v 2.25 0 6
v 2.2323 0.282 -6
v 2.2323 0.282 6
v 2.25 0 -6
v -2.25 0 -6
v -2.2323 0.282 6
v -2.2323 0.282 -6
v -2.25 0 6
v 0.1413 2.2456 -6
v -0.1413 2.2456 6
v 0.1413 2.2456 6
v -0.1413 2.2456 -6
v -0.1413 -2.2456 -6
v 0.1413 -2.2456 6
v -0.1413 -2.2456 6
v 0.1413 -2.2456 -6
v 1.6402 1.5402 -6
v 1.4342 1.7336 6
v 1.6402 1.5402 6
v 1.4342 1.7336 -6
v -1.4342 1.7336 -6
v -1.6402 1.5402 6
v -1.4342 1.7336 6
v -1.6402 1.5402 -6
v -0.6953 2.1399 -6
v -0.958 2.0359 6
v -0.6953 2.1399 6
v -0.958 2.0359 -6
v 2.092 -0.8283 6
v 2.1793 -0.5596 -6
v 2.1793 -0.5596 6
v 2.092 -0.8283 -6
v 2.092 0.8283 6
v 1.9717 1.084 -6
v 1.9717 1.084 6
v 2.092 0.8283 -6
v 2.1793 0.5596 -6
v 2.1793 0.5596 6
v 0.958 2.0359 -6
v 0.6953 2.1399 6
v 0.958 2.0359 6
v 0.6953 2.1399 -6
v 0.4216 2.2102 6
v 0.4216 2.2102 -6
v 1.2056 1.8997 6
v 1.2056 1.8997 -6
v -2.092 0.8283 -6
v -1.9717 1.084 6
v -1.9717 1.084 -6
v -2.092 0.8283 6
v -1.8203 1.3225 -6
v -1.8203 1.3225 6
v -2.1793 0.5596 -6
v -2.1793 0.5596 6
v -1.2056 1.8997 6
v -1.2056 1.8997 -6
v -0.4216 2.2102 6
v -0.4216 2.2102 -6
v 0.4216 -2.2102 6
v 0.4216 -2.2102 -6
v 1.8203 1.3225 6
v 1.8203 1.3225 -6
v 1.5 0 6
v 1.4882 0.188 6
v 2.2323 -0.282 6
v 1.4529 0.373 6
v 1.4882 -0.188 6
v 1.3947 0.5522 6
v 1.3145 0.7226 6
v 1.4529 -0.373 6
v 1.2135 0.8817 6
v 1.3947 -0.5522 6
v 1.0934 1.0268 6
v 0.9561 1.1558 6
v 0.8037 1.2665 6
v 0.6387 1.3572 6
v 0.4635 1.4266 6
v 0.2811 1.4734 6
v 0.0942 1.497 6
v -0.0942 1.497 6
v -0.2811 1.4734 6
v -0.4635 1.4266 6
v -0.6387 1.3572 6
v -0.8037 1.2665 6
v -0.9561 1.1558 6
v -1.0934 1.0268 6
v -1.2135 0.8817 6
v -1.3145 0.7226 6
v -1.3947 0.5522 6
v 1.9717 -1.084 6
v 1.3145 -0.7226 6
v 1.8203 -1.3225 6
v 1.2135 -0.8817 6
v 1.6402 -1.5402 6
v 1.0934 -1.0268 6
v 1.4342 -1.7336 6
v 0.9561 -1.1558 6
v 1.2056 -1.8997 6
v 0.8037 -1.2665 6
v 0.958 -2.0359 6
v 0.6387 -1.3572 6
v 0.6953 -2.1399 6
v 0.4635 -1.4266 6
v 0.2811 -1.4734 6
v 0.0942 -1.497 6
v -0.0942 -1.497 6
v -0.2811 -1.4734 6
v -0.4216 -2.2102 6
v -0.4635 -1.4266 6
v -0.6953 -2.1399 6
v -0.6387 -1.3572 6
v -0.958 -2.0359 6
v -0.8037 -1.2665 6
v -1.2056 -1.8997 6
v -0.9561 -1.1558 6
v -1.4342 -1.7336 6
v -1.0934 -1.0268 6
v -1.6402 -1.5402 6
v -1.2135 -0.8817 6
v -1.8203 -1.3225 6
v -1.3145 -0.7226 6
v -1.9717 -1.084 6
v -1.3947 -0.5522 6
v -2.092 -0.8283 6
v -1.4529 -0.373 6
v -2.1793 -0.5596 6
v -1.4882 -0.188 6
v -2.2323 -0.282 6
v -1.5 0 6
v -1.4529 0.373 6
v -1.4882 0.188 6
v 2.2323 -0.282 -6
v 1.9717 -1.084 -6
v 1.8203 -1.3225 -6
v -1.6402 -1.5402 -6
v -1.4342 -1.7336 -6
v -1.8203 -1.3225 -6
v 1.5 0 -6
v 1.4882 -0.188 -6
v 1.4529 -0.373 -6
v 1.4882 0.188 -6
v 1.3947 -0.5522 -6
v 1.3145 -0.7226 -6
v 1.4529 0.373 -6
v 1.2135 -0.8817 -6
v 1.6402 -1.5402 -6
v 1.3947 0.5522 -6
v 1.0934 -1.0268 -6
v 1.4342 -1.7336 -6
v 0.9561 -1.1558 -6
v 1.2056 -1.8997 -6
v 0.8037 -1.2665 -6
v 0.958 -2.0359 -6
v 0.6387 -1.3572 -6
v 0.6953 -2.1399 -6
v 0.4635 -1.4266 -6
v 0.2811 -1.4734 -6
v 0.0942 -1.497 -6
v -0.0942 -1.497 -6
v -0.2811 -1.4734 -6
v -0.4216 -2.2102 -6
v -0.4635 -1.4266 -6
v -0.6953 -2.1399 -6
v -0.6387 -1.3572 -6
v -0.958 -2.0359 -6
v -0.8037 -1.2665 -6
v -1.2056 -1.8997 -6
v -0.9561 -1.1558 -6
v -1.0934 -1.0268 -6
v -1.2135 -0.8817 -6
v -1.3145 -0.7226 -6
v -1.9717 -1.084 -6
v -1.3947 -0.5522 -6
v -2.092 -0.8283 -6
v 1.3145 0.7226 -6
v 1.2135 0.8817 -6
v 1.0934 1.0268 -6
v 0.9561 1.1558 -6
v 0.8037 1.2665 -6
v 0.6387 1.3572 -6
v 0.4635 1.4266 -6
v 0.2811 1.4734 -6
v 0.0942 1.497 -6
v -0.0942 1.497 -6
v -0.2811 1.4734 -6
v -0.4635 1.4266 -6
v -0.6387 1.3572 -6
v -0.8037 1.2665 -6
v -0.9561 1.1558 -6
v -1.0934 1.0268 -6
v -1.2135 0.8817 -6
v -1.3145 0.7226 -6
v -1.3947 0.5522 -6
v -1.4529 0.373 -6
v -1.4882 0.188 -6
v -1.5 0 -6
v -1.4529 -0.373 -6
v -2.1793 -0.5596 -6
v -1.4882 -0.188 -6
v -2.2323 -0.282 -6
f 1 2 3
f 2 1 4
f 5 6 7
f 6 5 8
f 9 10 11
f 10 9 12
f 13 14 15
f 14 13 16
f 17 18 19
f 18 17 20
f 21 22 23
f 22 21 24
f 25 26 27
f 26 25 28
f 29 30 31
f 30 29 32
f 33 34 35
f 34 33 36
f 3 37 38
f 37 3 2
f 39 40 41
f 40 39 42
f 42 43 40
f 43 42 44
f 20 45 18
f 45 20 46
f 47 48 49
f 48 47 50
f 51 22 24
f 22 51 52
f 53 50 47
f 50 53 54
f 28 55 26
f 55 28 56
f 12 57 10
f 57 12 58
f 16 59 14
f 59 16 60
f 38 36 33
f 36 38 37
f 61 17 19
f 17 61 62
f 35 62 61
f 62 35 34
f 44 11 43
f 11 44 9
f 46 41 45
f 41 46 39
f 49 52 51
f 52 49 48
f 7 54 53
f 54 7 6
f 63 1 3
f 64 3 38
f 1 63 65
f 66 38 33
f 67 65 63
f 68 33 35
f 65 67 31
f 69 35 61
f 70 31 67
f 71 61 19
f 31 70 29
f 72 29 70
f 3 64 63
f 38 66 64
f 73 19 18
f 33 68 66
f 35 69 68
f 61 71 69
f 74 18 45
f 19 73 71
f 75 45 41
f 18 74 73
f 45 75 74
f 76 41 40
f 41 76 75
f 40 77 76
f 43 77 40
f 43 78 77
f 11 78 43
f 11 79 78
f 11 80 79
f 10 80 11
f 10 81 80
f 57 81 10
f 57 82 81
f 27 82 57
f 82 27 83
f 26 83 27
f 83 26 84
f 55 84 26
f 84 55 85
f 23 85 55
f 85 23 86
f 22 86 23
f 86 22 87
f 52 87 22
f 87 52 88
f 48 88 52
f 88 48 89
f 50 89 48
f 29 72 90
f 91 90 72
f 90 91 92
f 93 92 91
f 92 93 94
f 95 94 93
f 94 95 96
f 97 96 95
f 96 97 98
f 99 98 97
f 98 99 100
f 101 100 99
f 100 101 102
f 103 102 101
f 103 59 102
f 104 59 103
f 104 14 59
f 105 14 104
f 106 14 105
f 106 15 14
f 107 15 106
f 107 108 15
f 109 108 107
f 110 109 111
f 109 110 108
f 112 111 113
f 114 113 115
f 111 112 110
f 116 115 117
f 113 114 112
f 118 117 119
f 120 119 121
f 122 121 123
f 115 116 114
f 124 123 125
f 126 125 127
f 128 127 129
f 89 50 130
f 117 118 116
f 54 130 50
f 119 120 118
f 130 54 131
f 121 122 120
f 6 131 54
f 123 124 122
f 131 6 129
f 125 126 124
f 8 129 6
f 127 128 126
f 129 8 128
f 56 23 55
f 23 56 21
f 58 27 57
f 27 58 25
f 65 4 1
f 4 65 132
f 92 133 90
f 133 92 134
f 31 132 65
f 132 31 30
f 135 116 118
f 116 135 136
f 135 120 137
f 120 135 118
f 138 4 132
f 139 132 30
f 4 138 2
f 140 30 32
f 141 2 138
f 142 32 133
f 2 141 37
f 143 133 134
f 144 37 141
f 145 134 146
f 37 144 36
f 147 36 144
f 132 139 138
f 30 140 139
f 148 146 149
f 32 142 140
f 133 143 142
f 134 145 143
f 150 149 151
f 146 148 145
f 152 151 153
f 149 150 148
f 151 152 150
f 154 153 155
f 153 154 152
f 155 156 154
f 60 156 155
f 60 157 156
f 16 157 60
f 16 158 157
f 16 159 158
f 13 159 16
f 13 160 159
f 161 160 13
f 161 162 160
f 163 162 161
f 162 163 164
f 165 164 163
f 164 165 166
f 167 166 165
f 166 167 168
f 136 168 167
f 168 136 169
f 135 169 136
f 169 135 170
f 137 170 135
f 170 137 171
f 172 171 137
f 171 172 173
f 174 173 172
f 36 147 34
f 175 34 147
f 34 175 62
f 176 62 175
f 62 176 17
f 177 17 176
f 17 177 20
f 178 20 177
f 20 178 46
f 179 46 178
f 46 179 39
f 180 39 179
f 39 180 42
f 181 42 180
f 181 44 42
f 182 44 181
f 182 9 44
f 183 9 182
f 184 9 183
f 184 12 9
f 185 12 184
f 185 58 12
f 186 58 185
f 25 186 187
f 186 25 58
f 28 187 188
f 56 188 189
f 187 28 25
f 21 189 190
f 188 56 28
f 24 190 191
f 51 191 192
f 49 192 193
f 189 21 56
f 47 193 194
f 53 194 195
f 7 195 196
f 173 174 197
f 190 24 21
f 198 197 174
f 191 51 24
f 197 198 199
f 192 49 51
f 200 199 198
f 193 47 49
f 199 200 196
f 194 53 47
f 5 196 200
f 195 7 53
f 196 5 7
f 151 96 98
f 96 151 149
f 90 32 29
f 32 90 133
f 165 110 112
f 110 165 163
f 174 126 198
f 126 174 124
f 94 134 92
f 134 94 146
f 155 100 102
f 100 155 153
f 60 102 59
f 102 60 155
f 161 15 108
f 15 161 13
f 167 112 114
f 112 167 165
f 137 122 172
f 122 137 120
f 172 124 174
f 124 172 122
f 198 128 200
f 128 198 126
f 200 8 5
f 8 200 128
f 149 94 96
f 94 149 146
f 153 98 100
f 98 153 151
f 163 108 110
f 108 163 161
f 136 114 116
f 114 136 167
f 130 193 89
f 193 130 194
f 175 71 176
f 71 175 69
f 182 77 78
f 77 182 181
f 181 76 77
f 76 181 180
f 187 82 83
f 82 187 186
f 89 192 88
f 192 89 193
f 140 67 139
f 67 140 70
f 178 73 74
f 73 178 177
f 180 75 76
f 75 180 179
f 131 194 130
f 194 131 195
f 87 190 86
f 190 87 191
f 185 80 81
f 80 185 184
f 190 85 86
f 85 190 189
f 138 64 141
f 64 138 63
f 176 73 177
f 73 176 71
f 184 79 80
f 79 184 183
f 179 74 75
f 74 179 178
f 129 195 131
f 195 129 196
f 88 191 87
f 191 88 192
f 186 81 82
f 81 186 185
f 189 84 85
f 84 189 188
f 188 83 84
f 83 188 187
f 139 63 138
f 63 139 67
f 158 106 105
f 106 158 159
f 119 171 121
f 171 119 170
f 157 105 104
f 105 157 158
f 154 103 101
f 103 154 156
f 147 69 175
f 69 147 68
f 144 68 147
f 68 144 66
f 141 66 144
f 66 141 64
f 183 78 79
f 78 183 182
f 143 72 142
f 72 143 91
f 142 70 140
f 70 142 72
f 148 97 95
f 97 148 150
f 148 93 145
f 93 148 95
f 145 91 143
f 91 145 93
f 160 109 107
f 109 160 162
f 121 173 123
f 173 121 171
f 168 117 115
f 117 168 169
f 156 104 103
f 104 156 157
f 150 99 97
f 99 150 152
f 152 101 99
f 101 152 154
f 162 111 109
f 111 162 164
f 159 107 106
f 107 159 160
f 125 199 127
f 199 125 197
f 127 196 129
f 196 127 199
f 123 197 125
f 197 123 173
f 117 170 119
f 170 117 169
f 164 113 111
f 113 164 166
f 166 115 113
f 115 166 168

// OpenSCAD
$fn = 50;


difference() {
	union() {
		translate(v = [0, 0, -6.0000000000]) {
			cylinder(h = 12, r = 2.2500000000);
		}
	}
	union() {
		translate(v = [0, 0, -100.0000000000]) {
			cylinder(h = 200, r = 1.5000000000);
		}
	}
}
